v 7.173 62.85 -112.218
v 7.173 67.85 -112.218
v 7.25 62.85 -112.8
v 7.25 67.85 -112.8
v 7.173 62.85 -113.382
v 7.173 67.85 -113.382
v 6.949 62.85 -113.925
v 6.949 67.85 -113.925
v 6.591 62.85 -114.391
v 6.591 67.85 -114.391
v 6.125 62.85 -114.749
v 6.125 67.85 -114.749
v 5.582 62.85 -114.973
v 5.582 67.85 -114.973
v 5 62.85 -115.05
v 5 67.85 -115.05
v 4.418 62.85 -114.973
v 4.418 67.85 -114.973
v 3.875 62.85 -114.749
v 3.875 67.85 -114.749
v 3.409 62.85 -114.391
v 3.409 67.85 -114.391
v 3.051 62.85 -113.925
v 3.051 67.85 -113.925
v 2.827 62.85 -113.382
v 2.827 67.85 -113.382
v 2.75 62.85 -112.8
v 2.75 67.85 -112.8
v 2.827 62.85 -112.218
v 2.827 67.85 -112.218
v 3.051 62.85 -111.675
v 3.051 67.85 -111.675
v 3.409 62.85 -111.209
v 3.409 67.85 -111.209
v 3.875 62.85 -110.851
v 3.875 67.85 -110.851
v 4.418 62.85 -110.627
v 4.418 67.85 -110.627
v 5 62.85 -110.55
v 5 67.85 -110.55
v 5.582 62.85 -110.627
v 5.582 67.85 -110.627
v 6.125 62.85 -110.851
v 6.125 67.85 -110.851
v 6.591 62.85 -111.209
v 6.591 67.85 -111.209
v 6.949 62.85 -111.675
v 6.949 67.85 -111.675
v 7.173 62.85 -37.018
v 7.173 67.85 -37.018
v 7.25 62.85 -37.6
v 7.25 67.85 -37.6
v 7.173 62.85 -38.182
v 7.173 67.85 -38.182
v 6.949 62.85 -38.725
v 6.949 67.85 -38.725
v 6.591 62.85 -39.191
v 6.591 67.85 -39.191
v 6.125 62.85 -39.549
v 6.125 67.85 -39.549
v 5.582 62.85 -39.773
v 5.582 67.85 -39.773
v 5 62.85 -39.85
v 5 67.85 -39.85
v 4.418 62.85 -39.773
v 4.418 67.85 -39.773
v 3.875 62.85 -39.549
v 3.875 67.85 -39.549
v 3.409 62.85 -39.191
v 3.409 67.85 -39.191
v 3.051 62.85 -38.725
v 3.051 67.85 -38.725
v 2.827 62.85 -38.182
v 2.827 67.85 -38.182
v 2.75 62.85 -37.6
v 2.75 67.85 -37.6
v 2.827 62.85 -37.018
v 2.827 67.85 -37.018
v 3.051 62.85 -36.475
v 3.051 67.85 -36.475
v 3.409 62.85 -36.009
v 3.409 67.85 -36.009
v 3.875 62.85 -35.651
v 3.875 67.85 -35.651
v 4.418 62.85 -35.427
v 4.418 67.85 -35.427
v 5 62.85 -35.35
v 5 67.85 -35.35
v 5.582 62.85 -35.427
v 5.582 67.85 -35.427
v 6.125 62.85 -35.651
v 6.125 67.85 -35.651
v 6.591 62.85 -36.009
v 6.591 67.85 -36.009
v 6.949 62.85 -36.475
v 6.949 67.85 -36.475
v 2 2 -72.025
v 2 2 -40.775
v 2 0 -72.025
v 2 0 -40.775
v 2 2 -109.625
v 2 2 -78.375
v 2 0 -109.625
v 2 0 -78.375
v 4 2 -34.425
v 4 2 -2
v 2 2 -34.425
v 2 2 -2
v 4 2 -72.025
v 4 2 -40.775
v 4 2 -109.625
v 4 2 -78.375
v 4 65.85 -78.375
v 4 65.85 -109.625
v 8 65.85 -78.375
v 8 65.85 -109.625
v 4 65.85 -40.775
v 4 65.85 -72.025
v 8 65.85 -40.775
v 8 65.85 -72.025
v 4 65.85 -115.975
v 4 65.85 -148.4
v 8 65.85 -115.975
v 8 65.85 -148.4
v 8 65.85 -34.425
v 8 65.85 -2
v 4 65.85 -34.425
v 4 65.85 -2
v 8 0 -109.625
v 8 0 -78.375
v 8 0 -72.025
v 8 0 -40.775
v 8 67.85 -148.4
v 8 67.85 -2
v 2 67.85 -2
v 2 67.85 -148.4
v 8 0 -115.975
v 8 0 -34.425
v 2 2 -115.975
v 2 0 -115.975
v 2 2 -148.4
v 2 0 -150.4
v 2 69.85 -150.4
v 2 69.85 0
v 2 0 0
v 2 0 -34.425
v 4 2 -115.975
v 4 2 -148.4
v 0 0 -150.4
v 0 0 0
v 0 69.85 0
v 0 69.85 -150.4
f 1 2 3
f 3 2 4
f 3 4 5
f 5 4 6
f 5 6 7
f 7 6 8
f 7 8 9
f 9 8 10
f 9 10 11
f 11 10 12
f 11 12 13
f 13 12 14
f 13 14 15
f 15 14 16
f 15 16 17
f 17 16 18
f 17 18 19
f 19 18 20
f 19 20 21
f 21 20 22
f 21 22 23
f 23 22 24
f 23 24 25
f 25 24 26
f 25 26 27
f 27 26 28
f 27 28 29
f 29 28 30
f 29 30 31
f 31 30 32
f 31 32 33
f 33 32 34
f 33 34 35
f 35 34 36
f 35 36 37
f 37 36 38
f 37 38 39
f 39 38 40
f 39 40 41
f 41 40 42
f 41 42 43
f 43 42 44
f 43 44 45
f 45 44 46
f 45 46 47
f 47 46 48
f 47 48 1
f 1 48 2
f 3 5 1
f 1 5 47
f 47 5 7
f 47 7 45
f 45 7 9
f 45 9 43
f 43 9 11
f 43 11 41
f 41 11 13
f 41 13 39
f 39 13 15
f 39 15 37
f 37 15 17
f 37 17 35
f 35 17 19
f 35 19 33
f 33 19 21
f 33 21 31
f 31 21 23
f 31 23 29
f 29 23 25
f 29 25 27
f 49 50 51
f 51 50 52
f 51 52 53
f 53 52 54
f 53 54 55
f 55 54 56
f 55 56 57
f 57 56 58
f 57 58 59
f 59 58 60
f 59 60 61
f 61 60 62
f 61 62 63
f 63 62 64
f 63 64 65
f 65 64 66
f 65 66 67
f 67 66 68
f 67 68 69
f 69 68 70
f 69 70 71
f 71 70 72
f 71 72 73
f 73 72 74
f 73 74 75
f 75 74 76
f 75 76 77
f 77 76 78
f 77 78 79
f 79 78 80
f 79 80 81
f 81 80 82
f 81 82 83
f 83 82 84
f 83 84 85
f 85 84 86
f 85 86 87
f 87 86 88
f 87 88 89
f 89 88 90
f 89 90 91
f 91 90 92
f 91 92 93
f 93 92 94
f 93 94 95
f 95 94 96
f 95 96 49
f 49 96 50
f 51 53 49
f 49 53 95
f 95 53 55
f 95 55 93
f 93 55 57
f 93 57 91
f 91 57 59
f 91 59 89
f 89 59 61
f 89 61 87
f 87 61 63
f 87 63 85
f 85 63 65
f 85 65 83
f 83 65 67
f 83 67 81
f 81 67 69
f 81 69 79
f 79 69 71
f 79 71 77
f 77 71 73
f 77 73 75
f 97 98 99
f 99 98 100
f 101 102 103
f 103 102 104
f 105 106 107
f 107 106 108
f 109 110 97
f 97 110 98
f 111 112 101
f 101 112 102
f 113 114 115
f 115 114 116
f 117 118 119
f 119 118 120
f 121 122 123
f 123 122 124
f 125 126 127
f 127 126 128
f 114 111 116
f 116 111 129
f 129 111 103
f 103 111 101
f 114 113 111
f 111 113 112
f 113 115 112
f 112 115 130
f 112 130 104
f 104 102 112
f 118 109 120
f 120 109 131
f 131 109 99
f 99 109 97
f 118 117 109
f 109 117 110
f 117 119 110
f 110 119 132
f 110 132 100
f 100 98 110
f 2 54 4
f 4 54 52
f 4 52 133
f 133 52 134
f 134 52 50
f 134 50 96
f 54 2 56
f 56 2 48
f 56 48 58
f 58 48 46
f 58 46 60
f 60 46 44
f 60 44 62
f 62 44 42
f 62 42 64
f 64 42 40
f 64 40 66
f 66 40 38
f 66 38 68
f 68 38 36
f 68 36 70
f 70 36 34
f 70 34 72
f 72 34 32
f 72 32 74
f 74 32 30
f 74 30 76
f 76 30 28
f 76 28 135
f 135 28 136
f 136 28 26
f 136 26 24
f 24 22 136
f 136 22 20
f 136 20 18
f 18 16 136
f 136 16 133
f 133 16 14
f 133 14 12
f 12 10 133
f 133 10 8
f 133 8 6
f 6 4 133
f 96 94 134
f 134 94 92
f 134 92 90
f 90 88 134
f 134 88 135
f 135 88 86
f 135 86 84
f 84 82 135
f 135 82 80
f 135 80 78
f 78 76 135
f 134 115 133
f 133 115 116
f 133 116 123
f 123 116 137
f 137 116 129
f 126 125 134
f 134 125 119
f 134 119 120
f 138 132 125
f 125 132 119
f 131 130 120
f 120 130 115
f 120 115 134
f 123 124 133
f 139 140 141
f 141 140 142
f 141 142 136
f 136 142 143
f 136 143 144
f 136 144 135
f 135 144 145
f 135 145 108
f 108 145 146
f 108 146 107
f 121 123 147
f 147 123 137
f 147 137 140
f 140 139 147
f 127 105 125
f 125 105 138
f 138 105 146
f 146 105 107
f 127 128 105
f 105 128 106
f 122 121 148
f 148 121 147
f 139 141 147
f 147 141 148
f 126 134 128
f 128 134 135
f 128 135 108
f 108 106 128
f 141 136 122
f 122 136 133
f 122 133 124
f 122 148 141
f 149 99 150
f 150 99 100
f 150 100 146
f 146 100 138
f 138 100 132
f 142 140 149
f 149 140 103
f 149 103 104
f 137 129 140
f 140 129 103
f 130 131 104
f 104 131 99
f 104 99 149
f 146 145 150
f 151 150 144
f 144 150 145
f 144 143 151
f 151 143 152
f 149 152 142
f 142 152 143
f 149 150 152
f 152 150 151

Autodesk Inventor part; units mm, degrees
ref_plane "YZ Plane" through (0, 0, 0) normal (1, 0, 0) x (0, 1, 0)
ref_plane "XZ Plane" through (0, 0, 0) normal (0, 1, 0) x (-1, 0, 0)
ref_plane "XY Plane" through (0, 0, 0) normal (0, 0, 1) x (1, 0, 0)
sketch "Sketch1" plane through (0, 0, 0) normal (1, 0, 0) x (0, 1, 0)
  line L0 (0, 0) -> (69.85, 0)
  line L1 (69.85, 0) -> (69.85, -150.4)
  line L2 (69.85, -150.4) -> (0, -150.4)
  line L3 (0, -150.4) -> (0, 0)
  dimension "d0" = 69.85
  dimension "d1" = 150.4
extrude "Extrusion1" add sketch "Sketch1" along normal blind 2
sketch "Sketch2" plane through (2, 0, 0) normal (1, 0, 0) x (0, 0, -1)
  line L0 (150.4, 0) -> (150.4, 69.85) projected
  line L1 (150.4, 69.85) -> (0, 69.85) projected
  line L2 (0, 69.85) -> (0, 0) projected
  line L3 (0, 0) -> (150.4, 0) projected
  line L4 (150.4, 69.85) -> (148.4, 69.85)
  line L5 (148.4, 69.85) -> (148.4, 0)
  line L6 (148.4, 0) -> (150.4, 0)
  line L7 (150.4, 0) -> (150.4, 69.85)
  line L8 (0, 69.85) -> (2, 69.85)
  line L9 (2, 69.85) -> (2, 0)
  line L10 (2, 0) -> (0, 0)
  line L11 (0, 0) -> (0, 69.85)
  line L12 (0, 0) -> (150.4, 0)
  line L13 (150.4, 0) -> (150.4, 2)
  line L14 (150.4, 2) -> (0, 2)
  line L15 (0, 2) -> (0, 0)
  point P0 (2, 2)
  point P1 (148.4, 2)
  dimension "d4" = 2
  dimension "d5" = 2
  dimension "d6" = 2
extrude "Extrusion2" add sketch "Sketch2" along normal blind 2 contours L14 L9 L1 L5
sketch "Sketch3" plane through (4, 0, 0) normal (1, 0, 0) x (0, 0, -1)
  line L0 (150.4, 0) -> (150.4, 69.85) projected
  line L1 (0, 0) -> (150.4, 0) projected
  line L2 (0, 69.85) -> (0, 0) projected
  line L3 (150.4, 69.85) -> (0, 69.85) projected
  line L4 (0, 69.85) -> (75.2, 69.85) construction
  line L5 (75.2, 69.85) -> (75.2, 0) construction
  line L6 (75.2, 0) -> (0, 0) construction
  line L7 (0, 0) -> (0, 69.85) construction
  line L8 (0, 0) -> (150.4, 0) construction
  line L9 (0, 0) -> (37.6, 0) construction
  line L10 (37.6, 0) -> (37.6, 69.85) construction
  line L11 (37.6, 69.85) -> (0, 69.85) construction
  line L12 (0, 69.85) -> (0, 0) construction
  line L13 (150.4, 0) -> (150.4, 69.85) construction
  line L14 (75.2, 69.85) -> (150.4, 69.85) construction
  line L15 (150.4, 69.85) -> (150.4, 0) construction
  line L16 (150.4, 0) -> (75.2, 0) construction
  line L17 (75.2, 0) -> (75.2, 69.85) construction
  line L18 (75.2, 0) -> (112.8, 0) construction
  line L19 (112.8, 0) -> (112.8, 69.85) construction
  line L20 (112.8, 69.85) -> (75.2, 69.85) construction
  line L21 (75.2, 69.85) -> (75.2, 0) construction
  line L22 (34.425, 0) -> (34.425, 69.85) construction
  line L23 (34.425, 69.85) -> (40.775, 69.85) construction
  line L24 (40.775, 69.85) -> (40.775, 0) construction
  line L25 (40.775, 0) -> (34.425, 0) construction
  line L26 (34.425, 0) -> (40.775, 69.85) construction
  line L27 (34.425, 69.85) -> (40.775, 0) construction
  line L28 (72.025, 0) -> (72.025, 69.85) construction
  line L29 (72.025, 69.85) -> (78.375, 69.85) construction
  line L30 (78.375, 69.85) -> (78.375, 0) construction
  line L31 (78.375, 0) -> (72.025, 0) construction
  line L32 (72.025, 0) -> (78.375, 69.85) construction
  line L33 (72.025, 69.85) -> (78.375, 0) construction
  line L34 (109.625, 0) -> (109.625, 69.85) construction
  line L35 (109.625, 69.85) -> (115.975, 69.85) construction
  line L36 (115.975, 69.85) -> (115.975, 0) construction
  line L37 (115.975, 0) -> (109.625, 0) construction
  line L38 (109.625, 0) -> (115.975, 69.85) construction
  line L39 (109.625, 69.85) -> (115.975, 0) construction
  line L40 (34.425, 69.85) -> (40.775, 69.85)
  line L41 (40.775, 69.85) -> (40.775, 0)
  line L42 (40.775, 0) -> (34.425, 0)
  line L43 (34.425, 0) -> (34.425, 69.85)
  line L44 (72.025, 0) -> (78.375, 0)
  line L45 (78.375, 0) -> (78.375, 69.85)
  line L46 (78.375, 69.85) -> (72.025, 69.85)
  line L47 (72.025, 69.85) -> (72.025, 0)
  line L48 (109.625, 69.85) -> (115.975, 69.85)
  line L49 (115.975, 69.85) -> (115.975, 0)
  line L50 (115.975, 0) -> (109.625, 0)
  line L51 (109.625, 0) -> (109.625, 69.85)
  point P0 (37.6, 34.925)
  point P1 (75.2, 34.925)
  point P2 (112.8, 34.925)
  dimension "d9" = 6.35
  dimension "d10" = 6.35
  dimension "d11" = 6.35
extrude "Extrusion3" add sketch "Sketch3" along normal blind 4 contours L1 L51 L3 L49 | L1 L47 L3 L45 | L1 L43 L3 L41
sketch "Sketch4" plane through (0, 69.85, 0) normal (0, 1, 0) x (1, 0, 0)
  line L0 (0, 150.4) -> (0, 0) projected
  line L1 (0, 150.4) -> (0, 0) construction
  line L2 (0, 0) -> (2, 0) construction
  line L3 (2, 2) -> (2, 0) construction
  line L4 (2, 2) -> (4, 2) construction
  line L5 (4, 34.425) -> (4, 2) construction
  line L6 (4, 34.425) -> (8, 34.425) construction
  line L7 (8, 40.775) -> (8, 34.425) construction
  line L8 (4, 40.775) -> (8, 40.775) construction
  line L9 (4, 72.025) -> (4, 40.775) construction
  line L10 (4, 72.025) -> (8, 72.025) construction
  line L11 (8, 78.375) -> (8, 72.025) construction
  line L12 (4, 78.375) -> (8, 78.375) construction
  line L13 (4, 109.625) -> (4, 78.375) construction
  line L14 (4, 109.625) -> (8, 109.625) construction
  line L15 (8, 115.975) -> (8, 109.625) construction
  line L16 (4, 115.975) -> (8, 115.975) construction
  line L17 (4, 148.4) -> (4, 115.975) construction
  line L18 (2, 148.4) -> (4, 148.4) construction
  line L19 (2, 150.4) -> (2, 148.4) construction
  line L20 (0, 150.4) -> (2, 150.4) construction
  line L21 (2, 0) -> (0, 0)
  line L22 (0, 0) -> (0, 150.4)
  line L23 (0, 150.4) -> (2, 150.4)
  line L24 (2, 150.4) -> (2, 0)
  line L25 (2, 0) -> (8, 0)
  line L26 (8, 0) -> (8, 150.4)
  line L27 (8, 150.4) -> (2, 150.4)
  line L28 (2, 150.4) -> (2, 0)
extrude "Extrusion4" cut sketch "Sketch4" against normal blind 2 contours L27 L26 L25 L24
sketch "Sketch5" plane through (0, 67.85, 0) normal (0, 1, 0) x (1, 0, 0)
  line L0 (4, 115.975) -> (8, 115.975) projected
  line L1 (4, 148.4) -> (4, 115.975) projected
  line L2 (2, 148.4) -> (4, 148.4) projected
  line L3 (2, 2) -> (2, 148.4) projected
  line L4 (4, 2) -> (2, 2) projected
  line L5 (4, 34.425) -> (4, 2) projected
  line L6 (8, 34.425) -> (4, 34.425) projected
  line L7 (8, 40.775) -> (8, 34.425) projected
  line L8 (4, 40.775) -> (8, 40.775) projected
  line L9 (4, 72.025) -> (4, 40.775) projected
  line L10 (8, 72.025) -> (4, 72.025) projected
  line L11 (8, 78.375) -> (8, 72.025) projected
  line L12 (4, 78.375) -> (8, 78.375) projected
  line L13 (4, 109.625) -> (4, 78.375) projected
  line L14 (8, 109.625) -> (4, 109.625) projected
  line L15 (8, 115.975) -> (8, 109.625) projected
  line L16 (2, 2) -> (4, 2) projected
  line L17 (2, 2) -> (8, 2)
  line L18 (8, 2) -> (8, 148.4)
  line L19 (8, 148.4) -> (2, 148.4)
  line L20 (2, 148.4) -> (2, 2)
  point P0 (0, 0)
  point P1 (4, 2)
extrude "Extrusion5" add sketch "Sketch5" against normal blind 2 contours L1 L19 L18 L0 | L18 L12 L13 L14 | L18 L8 L9 L10 | L5 L6 L18 L17
sketch "Sketch7" plane through (4, 0, 0) normal (-1, 0, 0) x (0, 0, 1)
  line L0 (-109.625, 2) -> (-115.975, 2) projected
  line L1 (-115.975, 0) -> (-115.975, 2) projected
  line L2 (-109.625, 0) -> (-115.975, 0) projected
  line L3 (-109.625, 2) -> (-109.625, 0) projected
  line L4 (-72.025, 2) -> (-78.375, 2) projected
  line L5 (-78.375, 0) -> (-78.375, 2) projected
  line L6 (-72.025, 0) -> (-78.375, 0) projected
  line L7 (-72.025, 2) -> (-72.025, 0) projected
  line L8 (-34.425, 2) -> (-40.775, 2) projected
  line L9 (-40.775, 0) -> (-40.775, 2) projected
  line L10 (-34.425, 0) -> (-40.775, 0) projected
  line L11 (-34.425, 2) -> (-34.425, 0) projected
  point P0 (0, 0)
extrude "Extrusion6" add sketch "Sketch7" along normal blind 2
sketch "Sketch8" plane through (0, 67.85, 0) normal (0, 1, 0) x (1, 0, 0)
  line L0 (8, 2) -> (8, 148.4) construction
  line L1 (2, 148.4) -> (8, 148.4) construction
  line L2 (2, 2) -> (2, 148.4) construction
  line L3 (8, 2) -> (2, 2) construction
  line L4 (8, 34.425) -> (2, 34.425) construction
  line L5 (2, 34.425) -> (2, 40.775) construction
  line L6 (2, 40.775) -> (8, 40.775) construction
  line L7 (8, 40.775) -> (8, 34.425) construction
  circle A0 centre (5, 37.6) radius 2.25 construction
  line L8 (2, 2) -> (2, 148.4) construction
  line L9 (8, 109.625) -> (2, 109.625) construction
  line L10 (2, 109.625) -> (2, 115.975) construction
  line L11 (2, 115.975) -> (8, 115.975) construction
  line L12 (8, 115.975) -> (8, 109.625) construction
  circle A1 centre (5, 112.8) radius 2.25 construction
  circle A2 centre (5, 37.6) radius 2.25
  circle A3 centre (5, 112.8) radius 2.25
  point P0 (0, 0)
  point P1 (8, 72.025)
  point P2 (8, 78.375)
  dimension "d20" = 4.5
  dimension "d21" = 4.5
extrude "Extrusion7" cut sketch "Sketch8" against normal blind 5
properties part number "leftwall"
